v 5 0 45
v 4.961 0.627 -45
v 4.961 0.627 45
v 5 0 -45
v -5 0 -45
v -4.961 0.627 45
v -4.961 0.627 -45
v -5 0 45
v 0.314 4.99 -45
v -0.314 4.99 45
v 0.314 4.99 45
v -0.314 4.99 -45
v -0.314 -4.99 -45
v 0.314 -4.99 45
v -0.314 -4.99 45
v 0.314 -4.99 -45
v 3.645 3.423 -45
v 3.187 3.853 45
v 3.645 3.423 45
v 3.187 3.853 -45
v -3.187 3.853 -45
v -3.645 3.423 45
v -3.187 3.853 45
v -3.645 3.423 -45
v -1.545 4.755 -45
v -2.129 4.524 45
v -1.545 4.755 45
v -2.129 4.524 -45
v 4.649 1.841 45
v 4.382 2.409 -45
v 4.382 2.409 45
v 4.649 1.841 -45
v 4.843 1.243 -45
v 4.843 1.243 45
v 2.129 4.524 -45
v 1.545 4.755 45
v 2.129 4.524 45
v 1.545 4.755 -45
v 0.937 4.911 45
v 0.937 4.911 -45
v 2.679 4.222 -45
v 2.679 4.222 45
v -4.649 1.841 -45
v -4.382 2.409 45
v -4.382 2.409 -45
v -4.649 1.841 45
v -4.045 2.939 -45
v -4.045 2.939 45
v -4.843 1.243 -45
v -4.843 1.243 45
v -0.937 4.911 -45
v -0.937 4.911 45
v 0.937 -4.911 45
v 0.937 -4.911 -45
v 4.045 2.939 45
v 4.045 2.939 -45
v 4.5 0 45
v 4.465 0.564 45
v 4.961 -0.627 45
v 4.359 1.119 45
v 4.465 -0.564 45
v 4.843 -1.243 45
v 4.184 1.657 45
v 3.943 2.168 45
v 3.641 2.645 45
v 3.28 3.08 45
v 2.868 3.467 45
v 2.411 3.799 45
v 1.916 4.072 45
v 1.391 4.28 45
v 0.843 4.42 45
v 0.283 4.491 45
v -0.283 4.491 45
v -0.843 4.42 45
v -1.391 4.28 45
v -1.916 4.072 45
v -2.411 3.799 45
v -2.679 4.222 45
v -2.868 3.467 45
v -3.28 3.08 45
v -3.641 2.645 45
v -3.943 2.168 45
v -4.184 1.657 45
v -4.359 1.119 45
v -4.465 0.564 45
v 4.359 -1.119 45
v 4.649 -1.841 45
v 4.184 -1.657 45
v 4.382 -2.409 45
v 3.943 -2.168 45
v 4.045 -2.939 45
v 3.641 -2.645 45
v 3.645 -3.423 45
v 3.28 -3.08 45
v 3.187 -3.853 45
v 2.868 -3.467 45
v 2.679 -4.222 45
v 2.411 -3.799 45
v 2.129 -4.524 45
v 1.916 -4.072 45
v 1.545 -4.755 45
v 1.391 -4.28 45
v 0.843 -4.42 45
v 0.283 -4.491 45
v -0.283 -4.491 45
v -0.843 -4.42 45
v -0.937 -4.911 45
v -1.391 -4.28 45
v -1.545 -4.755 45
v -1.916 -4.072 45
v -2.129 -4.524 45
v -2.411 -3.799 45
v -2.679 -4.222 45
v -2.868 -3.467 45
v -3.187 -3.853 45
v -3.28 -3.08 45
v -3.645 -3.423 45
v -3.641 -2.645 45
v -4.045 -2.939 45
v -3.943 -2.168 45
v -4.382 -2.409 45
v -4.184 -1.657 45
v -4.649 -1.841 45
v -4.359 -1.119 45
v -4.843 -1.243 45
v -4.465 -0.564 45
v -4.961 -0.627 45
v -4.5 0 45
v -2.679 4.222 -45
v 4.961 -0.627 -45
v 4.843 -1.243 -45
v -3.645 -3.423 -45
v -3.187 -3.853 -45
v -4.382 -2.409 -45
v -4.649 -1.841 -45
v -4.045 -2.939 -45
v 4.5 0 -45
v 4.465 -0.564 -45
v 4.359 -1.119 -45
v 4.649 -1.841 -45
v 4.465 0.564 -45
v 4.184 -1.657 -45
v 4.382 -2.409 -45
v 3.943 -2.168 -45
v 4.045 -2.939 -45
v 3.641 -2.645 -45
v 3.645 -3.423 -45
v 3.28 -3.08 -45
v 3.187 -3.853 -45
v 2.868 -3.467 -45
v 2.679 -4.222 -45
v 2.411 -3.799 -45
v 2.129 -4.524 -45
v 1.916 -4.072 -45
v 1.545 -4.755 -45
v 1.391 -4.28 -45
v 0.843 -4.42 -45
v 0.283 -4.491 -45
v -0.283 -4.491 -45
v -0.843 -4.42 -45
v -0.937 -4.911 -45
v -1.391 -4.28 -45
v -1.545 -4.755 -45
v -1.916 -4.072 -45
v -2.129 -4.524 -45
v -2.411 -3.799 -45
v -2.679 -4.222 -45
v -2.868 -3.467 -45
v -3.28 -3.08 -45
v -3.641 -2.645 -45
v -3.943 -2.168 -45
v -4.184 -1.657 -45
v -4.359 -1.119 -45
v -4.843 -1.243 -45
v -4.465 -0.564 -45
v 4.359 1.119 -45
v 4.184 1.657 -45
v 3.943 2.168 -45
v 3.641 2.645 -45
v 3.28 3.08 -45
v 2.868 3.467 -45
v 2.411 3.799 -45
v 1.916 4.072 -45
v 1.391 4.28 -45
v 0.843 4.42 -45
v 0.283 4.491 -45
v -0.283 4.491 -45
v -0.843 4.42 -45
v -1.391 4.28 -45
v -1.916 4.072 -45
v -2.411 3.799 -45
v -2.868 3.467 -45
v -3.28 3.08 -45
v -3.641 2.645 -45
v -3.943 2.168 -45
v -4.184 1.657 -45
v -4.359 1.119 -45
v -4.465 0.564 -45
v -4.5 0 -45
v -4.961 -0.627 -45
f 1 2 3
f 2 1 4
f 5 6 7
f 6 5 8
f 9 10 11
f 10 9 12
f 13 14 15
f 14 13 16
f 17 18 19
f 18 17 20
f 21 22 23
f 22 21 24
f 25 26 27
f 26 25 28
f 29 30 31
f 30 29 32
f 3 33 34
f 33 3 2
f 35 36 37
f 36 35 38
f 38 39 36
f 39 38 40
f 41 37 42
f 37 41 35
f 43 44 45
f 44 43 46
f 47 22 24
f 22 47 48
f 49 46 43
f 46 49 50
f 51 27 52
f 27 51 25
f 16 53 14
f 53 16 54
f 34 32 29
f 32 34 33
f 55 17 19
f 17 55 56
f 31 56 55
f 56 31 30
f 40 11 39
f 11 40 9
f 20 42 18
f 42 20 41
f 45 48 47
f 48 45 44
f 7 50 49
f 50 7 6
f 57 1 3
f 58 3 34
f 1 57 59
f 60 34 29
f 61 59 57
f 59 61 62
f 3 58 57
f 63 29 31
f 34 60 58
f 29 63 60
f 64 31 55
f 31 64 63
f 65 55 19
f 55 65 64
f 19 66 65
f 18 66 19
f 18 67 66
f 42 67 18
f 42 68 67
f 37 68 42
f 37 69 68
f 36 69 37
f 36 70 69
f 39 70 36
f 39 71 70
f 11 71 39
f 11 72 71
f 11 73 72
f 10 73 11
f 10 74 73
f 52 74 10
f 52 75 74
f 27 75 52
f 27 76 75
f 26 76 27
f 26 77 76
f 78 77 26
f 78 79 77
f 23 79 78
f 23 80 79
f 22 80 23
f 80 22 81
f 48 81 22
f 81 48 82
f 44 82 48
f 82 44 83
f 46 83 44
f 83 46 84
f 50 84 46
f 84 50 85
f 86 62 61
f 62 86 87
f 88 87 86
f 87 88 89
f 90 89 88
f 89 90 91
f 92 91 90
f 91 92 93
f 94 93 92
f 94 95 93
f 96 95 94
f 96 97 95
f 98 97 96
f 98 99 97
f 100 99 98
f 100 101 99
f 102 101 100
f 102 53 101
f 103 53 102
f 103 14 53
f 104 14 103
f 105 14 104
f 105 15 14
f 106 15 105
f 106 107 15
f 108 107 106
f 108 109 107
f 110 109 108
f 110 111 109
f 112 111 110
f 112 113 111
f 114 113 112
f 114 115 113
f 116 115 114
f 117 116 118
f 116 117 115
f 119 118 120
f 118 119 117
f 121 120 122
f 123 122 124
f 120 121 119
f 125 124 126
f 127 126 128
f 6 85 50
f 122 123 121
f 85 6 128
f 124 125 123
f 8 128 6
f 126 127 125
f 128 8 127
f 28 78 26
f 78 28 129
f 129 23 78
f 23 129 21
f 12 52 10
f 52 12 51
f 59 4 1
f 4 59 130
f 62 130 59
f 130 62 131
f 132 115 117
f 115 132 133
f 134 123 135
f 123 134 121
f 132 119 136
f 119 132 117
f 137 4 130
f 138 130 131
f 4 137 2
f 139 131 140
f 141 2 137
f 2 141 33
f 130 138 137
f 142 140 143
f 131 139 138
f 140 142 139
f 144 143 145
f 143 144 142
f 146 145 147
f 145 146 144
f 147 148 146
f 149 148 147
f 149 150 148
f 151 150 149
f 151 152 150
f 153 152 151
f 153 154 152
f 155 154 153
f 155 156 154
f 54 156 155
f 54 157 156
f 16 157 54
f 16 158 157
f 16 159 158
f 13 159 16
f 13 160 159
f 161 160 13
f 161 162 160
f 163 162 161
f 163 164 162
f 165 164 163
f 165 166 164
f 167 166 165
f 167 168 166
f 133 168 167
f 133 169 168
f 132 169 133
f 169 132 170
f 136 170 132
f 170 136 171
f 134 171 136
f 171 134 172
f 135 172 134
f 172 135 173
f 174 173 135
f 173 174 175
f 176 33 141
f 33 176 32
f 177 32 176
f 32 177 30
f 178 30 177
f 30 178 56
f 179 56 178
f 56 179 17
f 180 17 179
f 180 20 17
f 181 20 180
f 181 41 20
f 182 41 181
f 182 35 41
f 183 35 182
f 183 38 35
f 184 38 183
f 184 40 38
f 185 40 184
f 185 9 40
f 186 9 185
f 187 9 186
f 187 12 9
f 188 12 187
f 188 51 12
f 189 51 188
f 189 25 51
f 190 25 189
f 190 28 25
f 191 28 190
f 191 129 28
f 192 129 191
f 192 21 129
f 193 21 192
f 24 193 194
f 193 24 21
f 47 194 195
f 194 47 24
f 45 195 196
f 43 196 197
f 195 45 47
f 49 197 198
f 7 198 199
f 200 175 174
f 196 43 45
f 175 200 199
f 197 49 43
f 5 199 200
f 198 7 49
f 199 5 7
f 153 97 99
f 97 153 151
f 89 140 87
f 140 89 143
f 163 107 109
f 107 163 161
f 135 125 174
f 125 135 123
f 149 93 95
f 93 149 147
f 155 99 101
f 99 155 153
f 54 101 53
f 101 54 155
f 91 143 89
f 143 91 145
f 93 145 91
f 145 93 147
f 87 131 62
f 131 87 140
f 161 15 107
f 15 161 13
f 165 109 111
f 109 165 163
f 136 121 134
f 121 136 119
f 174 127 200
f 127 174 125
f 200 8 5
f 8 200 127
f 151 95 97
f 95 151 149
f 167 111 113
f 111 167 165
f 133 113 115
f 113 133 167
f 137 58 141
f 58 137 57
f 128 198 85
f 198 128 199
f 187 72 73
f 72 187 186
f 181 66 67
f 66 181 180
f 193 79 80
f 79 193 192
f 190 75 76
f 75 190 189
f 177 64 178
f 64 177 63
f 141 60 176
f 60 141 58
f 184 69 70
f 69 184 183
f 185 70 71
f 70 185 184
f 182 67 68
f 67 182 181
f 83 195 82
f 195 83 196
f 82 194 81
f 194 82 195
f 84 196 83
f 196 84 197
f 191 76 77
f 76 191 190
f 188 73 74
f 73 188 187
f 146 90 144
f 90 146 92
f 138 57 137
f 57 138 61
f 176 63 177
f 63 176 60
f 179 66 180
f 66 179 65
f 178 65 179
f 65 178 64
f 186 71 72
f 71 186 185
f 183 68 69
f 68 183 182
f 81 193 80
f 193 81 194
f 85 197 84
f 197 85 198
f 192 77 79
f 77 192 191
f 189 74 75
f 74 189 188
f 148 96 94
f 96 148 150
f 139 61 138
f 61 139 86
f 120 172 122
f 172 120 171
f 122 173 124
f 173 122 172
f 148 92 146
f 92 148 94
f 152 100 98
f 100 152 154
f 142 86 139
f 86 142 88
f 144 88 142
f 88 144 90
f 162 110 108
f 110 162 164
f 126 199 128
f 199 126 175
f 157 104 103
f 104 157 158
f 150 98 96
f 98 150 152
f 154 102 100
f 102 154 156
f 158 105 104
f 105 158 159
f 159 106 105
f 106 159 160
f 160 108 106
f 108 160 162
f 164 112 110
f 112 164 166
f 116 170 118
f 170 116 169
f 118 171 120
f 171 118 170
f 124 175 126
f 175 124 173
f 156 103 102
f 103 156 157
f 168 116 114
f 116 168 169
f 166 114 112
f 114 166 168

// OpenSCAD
$fn = 50;


difference() {
	union() {
		translate(v = [0, 0, -45.0000000000]) {
			cylinder(h = 90, r = 5.0000000000);
		}
	}
	union() {
		translate(v = [0, 0, -100.0000000000]) {
			cylinder(h = 200, r = 4.5000000000);
		}
	}
}
